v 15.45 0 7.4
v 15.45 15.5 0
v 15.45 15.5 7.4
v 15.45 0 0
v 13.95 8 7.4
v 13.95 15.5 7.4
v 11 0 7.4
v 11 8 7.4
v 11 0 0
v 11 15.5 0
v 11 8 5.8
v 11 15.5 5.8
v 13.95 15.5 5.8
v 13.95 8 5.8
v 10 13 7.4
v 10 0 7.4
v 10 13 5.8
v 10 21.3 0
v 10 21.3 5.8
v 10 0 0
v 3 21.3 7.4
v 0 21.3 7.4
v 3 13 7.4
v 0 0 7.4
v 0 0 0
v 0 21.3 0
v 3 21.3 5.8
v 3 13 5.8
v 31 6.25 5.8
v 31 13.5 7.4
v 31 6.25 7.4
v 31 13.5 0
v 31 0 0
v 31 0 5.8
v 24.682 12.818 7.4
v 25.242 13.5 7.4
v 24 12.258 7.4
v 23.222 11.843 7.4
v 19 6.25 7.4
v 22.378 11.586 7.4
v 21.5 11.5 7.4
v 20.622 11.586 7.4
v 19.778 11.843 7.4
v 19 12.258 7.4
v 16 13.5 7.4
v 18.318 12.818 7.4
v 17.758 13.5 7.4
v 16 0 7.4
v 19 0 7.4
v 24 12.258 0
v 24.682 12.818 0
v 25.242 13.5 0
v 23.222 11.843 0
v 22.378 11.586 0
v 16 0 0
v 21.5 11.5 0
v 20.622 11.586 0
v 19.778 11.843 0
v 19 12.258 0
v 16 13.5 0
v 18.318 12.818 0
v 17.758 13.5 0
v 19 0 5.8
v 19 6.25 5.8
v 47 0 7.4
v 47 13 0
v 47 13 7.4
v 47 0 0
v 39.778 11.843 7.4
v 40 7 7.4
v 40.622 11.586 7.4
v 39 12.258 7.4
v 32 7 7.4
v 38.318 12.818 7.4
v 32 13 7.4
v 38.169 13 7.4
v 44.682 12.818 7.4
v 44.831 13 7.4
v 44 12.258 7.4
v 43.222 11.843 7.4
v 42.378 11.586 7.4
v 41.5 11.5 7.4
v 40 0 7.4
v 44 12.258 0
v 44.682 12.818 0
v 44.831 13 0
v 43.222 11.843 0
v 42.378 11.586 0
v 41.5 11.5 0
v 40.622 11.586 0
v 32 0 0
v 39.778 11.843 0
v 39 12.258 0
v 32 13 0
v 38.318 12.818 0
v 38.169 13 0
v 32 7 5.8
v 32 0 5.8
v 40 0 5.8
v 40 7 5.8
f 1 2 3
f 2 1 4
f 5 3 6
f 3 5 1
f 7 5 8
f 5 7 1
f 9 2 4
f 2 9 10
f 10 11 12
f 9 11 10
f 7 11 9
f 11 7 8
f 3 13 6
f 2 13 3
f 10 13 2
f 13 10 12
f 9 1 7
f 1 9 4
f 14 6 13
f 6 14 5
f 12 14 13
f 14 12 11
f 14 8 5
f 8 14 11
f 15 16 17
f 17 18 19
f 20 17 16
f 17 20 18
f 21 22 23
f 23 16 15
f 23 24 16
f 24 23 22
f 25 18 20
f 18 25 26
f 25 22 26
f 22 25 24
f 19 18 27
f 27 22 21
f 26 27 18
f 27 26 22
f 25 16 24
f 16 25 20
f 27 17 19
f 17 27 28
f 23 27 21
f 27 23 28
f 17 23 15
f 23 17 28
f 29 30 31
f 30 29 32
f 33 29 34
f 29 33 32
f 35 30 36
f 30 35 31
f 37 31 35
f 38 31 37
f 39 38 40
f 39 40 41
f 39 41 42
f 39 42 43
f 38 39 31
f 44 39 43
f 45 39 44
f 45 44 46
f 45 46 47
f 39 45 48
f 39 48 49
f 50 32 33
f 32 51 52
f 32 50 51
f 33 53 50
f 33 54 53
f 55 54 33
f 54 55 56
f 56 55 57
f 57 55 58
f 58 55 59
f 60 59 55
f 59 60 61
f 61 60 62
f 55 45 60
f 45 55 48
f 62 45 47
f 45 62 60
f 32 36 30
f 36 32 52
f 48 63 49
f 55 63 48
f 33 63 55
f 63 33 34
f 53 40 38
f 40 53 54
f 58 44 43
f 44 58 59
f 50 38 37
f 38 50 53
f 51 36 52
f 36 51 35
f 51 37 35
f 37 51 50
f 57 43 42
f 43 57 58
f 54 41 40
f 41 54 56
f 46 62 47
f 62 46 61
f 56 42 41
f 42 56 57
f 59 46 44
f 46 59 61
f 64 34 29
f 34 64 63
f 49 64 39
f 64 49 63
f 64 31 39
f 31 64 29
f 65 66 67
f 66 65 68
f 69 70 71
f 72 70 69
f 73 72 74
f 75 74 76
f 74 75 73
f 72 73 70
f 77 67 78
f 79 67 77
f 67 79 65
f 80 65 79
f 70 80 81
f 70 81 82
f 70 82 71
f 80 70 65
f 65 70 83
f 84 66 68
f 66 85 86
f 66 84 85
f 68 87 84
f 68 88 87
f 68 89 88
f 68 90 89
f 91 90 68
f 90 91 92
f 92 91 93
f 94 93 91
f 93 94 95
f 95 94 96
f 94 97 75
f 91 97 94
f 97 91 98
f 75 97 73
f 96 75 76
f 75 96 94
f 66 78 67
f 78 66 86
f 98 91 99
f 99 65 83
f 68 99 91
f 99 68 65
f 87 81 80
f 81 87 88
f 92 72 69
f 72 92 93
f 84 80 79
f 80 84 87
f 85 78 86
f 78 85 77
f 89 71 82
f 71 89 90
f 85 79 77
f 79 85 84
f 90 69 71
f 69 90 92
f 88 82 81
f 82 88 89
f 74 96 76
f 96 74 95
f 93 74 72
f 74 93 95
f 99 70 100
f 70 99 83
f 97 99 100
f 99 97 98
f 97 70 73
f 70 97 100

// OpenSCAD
frame_width      = 3.0;
shelf_height     = 1.6;

front_left_foot_width  = 10.0;
front_left_foot_depth  = 21.3;
front_left_foot_height = 5.8+shelf_height;
translate( [0, 0, 0] )
{
  difference()
  {
    cube( [front_left_foot_width, front_left_foot_depth, front_left_foot_height],
          false );

    shelf_offset = 13.0;
    translate( [frame_width, shelf_offset,
                front_left_foot_height-shelf_height] )
      cube( [front_left_foot_width-frame_width,
             front_left_foot_depth-shelf_offset,
             shelf_height], false );
  }
}

front_right_foot_width  = 4.45;
front_right_foot_depth  = 15.5;  // Assumes 15 way D-SUB is in place
front_right_foot_height = 5.8+shelf_height;
translate( [11, 0, 0] )
{
  difference()
  {
    cube( [front_right_foot_width, front_right_foot_depth, front_right_foot_height],
          false );

    shelf_offset = 8.0;
    translate( [0, shelf_offset, front_right_foot_height-shelf_height] )
      cube( [front_right_foot_width-frame_width/2, front_right_foot_depth-shelf_offset,
             shelf_height], false );
  }
}

rear_left_foot_width  = 15.0;
rear_left_foot_depth  = 13.5;
rear_left_foot_height = 5.8+shelf_height;
translate( [16, 0, 0] )
{
  difference()
  {
    cube( [rear_left_foot_width, rear_left_foot_depth, rear_left_foot_height],
          false );

    $fn=32;
    translate( [5.5, 16.0, 0] )
      cylinder(rear_left_foot_height, 4.5, 4.5 );

    shelf_offset = 7.25;
    translate( [frame_width, 0, rear_left_foot_height-shelf_height] )
      cube( [rear_left_foot_width-frame_width,
             rear_left_foot_depth-shelf_offset,
             shelf_height], false );
  }
}

rear_right_foot_width  = 15.0;
rear_right_foot_depth  = 13.0;
rear_right_foot_height = 5.8+shelf_height;
translate( [32, 0, 0] )
{
  difference()
  {
    cube( [rear_right_foot_width, rear_right_foot_depth, rear_right_foot_height],
          false );

    $fn=32;
    translate( [rear_right_foot_width-5.5, 16.0, 0] )
      cylinder(rear_left_foot_height, 4.5, 4.5 );

    shelf_offset = 6.0;
    translate( [0, 0, rear_right_foot_height-shelf_height] )
      cube( [rear_right_foot_width-7.0,
             rear_right_foot_depth-shelf_offset,
             shelf_height], false );
  }
}
